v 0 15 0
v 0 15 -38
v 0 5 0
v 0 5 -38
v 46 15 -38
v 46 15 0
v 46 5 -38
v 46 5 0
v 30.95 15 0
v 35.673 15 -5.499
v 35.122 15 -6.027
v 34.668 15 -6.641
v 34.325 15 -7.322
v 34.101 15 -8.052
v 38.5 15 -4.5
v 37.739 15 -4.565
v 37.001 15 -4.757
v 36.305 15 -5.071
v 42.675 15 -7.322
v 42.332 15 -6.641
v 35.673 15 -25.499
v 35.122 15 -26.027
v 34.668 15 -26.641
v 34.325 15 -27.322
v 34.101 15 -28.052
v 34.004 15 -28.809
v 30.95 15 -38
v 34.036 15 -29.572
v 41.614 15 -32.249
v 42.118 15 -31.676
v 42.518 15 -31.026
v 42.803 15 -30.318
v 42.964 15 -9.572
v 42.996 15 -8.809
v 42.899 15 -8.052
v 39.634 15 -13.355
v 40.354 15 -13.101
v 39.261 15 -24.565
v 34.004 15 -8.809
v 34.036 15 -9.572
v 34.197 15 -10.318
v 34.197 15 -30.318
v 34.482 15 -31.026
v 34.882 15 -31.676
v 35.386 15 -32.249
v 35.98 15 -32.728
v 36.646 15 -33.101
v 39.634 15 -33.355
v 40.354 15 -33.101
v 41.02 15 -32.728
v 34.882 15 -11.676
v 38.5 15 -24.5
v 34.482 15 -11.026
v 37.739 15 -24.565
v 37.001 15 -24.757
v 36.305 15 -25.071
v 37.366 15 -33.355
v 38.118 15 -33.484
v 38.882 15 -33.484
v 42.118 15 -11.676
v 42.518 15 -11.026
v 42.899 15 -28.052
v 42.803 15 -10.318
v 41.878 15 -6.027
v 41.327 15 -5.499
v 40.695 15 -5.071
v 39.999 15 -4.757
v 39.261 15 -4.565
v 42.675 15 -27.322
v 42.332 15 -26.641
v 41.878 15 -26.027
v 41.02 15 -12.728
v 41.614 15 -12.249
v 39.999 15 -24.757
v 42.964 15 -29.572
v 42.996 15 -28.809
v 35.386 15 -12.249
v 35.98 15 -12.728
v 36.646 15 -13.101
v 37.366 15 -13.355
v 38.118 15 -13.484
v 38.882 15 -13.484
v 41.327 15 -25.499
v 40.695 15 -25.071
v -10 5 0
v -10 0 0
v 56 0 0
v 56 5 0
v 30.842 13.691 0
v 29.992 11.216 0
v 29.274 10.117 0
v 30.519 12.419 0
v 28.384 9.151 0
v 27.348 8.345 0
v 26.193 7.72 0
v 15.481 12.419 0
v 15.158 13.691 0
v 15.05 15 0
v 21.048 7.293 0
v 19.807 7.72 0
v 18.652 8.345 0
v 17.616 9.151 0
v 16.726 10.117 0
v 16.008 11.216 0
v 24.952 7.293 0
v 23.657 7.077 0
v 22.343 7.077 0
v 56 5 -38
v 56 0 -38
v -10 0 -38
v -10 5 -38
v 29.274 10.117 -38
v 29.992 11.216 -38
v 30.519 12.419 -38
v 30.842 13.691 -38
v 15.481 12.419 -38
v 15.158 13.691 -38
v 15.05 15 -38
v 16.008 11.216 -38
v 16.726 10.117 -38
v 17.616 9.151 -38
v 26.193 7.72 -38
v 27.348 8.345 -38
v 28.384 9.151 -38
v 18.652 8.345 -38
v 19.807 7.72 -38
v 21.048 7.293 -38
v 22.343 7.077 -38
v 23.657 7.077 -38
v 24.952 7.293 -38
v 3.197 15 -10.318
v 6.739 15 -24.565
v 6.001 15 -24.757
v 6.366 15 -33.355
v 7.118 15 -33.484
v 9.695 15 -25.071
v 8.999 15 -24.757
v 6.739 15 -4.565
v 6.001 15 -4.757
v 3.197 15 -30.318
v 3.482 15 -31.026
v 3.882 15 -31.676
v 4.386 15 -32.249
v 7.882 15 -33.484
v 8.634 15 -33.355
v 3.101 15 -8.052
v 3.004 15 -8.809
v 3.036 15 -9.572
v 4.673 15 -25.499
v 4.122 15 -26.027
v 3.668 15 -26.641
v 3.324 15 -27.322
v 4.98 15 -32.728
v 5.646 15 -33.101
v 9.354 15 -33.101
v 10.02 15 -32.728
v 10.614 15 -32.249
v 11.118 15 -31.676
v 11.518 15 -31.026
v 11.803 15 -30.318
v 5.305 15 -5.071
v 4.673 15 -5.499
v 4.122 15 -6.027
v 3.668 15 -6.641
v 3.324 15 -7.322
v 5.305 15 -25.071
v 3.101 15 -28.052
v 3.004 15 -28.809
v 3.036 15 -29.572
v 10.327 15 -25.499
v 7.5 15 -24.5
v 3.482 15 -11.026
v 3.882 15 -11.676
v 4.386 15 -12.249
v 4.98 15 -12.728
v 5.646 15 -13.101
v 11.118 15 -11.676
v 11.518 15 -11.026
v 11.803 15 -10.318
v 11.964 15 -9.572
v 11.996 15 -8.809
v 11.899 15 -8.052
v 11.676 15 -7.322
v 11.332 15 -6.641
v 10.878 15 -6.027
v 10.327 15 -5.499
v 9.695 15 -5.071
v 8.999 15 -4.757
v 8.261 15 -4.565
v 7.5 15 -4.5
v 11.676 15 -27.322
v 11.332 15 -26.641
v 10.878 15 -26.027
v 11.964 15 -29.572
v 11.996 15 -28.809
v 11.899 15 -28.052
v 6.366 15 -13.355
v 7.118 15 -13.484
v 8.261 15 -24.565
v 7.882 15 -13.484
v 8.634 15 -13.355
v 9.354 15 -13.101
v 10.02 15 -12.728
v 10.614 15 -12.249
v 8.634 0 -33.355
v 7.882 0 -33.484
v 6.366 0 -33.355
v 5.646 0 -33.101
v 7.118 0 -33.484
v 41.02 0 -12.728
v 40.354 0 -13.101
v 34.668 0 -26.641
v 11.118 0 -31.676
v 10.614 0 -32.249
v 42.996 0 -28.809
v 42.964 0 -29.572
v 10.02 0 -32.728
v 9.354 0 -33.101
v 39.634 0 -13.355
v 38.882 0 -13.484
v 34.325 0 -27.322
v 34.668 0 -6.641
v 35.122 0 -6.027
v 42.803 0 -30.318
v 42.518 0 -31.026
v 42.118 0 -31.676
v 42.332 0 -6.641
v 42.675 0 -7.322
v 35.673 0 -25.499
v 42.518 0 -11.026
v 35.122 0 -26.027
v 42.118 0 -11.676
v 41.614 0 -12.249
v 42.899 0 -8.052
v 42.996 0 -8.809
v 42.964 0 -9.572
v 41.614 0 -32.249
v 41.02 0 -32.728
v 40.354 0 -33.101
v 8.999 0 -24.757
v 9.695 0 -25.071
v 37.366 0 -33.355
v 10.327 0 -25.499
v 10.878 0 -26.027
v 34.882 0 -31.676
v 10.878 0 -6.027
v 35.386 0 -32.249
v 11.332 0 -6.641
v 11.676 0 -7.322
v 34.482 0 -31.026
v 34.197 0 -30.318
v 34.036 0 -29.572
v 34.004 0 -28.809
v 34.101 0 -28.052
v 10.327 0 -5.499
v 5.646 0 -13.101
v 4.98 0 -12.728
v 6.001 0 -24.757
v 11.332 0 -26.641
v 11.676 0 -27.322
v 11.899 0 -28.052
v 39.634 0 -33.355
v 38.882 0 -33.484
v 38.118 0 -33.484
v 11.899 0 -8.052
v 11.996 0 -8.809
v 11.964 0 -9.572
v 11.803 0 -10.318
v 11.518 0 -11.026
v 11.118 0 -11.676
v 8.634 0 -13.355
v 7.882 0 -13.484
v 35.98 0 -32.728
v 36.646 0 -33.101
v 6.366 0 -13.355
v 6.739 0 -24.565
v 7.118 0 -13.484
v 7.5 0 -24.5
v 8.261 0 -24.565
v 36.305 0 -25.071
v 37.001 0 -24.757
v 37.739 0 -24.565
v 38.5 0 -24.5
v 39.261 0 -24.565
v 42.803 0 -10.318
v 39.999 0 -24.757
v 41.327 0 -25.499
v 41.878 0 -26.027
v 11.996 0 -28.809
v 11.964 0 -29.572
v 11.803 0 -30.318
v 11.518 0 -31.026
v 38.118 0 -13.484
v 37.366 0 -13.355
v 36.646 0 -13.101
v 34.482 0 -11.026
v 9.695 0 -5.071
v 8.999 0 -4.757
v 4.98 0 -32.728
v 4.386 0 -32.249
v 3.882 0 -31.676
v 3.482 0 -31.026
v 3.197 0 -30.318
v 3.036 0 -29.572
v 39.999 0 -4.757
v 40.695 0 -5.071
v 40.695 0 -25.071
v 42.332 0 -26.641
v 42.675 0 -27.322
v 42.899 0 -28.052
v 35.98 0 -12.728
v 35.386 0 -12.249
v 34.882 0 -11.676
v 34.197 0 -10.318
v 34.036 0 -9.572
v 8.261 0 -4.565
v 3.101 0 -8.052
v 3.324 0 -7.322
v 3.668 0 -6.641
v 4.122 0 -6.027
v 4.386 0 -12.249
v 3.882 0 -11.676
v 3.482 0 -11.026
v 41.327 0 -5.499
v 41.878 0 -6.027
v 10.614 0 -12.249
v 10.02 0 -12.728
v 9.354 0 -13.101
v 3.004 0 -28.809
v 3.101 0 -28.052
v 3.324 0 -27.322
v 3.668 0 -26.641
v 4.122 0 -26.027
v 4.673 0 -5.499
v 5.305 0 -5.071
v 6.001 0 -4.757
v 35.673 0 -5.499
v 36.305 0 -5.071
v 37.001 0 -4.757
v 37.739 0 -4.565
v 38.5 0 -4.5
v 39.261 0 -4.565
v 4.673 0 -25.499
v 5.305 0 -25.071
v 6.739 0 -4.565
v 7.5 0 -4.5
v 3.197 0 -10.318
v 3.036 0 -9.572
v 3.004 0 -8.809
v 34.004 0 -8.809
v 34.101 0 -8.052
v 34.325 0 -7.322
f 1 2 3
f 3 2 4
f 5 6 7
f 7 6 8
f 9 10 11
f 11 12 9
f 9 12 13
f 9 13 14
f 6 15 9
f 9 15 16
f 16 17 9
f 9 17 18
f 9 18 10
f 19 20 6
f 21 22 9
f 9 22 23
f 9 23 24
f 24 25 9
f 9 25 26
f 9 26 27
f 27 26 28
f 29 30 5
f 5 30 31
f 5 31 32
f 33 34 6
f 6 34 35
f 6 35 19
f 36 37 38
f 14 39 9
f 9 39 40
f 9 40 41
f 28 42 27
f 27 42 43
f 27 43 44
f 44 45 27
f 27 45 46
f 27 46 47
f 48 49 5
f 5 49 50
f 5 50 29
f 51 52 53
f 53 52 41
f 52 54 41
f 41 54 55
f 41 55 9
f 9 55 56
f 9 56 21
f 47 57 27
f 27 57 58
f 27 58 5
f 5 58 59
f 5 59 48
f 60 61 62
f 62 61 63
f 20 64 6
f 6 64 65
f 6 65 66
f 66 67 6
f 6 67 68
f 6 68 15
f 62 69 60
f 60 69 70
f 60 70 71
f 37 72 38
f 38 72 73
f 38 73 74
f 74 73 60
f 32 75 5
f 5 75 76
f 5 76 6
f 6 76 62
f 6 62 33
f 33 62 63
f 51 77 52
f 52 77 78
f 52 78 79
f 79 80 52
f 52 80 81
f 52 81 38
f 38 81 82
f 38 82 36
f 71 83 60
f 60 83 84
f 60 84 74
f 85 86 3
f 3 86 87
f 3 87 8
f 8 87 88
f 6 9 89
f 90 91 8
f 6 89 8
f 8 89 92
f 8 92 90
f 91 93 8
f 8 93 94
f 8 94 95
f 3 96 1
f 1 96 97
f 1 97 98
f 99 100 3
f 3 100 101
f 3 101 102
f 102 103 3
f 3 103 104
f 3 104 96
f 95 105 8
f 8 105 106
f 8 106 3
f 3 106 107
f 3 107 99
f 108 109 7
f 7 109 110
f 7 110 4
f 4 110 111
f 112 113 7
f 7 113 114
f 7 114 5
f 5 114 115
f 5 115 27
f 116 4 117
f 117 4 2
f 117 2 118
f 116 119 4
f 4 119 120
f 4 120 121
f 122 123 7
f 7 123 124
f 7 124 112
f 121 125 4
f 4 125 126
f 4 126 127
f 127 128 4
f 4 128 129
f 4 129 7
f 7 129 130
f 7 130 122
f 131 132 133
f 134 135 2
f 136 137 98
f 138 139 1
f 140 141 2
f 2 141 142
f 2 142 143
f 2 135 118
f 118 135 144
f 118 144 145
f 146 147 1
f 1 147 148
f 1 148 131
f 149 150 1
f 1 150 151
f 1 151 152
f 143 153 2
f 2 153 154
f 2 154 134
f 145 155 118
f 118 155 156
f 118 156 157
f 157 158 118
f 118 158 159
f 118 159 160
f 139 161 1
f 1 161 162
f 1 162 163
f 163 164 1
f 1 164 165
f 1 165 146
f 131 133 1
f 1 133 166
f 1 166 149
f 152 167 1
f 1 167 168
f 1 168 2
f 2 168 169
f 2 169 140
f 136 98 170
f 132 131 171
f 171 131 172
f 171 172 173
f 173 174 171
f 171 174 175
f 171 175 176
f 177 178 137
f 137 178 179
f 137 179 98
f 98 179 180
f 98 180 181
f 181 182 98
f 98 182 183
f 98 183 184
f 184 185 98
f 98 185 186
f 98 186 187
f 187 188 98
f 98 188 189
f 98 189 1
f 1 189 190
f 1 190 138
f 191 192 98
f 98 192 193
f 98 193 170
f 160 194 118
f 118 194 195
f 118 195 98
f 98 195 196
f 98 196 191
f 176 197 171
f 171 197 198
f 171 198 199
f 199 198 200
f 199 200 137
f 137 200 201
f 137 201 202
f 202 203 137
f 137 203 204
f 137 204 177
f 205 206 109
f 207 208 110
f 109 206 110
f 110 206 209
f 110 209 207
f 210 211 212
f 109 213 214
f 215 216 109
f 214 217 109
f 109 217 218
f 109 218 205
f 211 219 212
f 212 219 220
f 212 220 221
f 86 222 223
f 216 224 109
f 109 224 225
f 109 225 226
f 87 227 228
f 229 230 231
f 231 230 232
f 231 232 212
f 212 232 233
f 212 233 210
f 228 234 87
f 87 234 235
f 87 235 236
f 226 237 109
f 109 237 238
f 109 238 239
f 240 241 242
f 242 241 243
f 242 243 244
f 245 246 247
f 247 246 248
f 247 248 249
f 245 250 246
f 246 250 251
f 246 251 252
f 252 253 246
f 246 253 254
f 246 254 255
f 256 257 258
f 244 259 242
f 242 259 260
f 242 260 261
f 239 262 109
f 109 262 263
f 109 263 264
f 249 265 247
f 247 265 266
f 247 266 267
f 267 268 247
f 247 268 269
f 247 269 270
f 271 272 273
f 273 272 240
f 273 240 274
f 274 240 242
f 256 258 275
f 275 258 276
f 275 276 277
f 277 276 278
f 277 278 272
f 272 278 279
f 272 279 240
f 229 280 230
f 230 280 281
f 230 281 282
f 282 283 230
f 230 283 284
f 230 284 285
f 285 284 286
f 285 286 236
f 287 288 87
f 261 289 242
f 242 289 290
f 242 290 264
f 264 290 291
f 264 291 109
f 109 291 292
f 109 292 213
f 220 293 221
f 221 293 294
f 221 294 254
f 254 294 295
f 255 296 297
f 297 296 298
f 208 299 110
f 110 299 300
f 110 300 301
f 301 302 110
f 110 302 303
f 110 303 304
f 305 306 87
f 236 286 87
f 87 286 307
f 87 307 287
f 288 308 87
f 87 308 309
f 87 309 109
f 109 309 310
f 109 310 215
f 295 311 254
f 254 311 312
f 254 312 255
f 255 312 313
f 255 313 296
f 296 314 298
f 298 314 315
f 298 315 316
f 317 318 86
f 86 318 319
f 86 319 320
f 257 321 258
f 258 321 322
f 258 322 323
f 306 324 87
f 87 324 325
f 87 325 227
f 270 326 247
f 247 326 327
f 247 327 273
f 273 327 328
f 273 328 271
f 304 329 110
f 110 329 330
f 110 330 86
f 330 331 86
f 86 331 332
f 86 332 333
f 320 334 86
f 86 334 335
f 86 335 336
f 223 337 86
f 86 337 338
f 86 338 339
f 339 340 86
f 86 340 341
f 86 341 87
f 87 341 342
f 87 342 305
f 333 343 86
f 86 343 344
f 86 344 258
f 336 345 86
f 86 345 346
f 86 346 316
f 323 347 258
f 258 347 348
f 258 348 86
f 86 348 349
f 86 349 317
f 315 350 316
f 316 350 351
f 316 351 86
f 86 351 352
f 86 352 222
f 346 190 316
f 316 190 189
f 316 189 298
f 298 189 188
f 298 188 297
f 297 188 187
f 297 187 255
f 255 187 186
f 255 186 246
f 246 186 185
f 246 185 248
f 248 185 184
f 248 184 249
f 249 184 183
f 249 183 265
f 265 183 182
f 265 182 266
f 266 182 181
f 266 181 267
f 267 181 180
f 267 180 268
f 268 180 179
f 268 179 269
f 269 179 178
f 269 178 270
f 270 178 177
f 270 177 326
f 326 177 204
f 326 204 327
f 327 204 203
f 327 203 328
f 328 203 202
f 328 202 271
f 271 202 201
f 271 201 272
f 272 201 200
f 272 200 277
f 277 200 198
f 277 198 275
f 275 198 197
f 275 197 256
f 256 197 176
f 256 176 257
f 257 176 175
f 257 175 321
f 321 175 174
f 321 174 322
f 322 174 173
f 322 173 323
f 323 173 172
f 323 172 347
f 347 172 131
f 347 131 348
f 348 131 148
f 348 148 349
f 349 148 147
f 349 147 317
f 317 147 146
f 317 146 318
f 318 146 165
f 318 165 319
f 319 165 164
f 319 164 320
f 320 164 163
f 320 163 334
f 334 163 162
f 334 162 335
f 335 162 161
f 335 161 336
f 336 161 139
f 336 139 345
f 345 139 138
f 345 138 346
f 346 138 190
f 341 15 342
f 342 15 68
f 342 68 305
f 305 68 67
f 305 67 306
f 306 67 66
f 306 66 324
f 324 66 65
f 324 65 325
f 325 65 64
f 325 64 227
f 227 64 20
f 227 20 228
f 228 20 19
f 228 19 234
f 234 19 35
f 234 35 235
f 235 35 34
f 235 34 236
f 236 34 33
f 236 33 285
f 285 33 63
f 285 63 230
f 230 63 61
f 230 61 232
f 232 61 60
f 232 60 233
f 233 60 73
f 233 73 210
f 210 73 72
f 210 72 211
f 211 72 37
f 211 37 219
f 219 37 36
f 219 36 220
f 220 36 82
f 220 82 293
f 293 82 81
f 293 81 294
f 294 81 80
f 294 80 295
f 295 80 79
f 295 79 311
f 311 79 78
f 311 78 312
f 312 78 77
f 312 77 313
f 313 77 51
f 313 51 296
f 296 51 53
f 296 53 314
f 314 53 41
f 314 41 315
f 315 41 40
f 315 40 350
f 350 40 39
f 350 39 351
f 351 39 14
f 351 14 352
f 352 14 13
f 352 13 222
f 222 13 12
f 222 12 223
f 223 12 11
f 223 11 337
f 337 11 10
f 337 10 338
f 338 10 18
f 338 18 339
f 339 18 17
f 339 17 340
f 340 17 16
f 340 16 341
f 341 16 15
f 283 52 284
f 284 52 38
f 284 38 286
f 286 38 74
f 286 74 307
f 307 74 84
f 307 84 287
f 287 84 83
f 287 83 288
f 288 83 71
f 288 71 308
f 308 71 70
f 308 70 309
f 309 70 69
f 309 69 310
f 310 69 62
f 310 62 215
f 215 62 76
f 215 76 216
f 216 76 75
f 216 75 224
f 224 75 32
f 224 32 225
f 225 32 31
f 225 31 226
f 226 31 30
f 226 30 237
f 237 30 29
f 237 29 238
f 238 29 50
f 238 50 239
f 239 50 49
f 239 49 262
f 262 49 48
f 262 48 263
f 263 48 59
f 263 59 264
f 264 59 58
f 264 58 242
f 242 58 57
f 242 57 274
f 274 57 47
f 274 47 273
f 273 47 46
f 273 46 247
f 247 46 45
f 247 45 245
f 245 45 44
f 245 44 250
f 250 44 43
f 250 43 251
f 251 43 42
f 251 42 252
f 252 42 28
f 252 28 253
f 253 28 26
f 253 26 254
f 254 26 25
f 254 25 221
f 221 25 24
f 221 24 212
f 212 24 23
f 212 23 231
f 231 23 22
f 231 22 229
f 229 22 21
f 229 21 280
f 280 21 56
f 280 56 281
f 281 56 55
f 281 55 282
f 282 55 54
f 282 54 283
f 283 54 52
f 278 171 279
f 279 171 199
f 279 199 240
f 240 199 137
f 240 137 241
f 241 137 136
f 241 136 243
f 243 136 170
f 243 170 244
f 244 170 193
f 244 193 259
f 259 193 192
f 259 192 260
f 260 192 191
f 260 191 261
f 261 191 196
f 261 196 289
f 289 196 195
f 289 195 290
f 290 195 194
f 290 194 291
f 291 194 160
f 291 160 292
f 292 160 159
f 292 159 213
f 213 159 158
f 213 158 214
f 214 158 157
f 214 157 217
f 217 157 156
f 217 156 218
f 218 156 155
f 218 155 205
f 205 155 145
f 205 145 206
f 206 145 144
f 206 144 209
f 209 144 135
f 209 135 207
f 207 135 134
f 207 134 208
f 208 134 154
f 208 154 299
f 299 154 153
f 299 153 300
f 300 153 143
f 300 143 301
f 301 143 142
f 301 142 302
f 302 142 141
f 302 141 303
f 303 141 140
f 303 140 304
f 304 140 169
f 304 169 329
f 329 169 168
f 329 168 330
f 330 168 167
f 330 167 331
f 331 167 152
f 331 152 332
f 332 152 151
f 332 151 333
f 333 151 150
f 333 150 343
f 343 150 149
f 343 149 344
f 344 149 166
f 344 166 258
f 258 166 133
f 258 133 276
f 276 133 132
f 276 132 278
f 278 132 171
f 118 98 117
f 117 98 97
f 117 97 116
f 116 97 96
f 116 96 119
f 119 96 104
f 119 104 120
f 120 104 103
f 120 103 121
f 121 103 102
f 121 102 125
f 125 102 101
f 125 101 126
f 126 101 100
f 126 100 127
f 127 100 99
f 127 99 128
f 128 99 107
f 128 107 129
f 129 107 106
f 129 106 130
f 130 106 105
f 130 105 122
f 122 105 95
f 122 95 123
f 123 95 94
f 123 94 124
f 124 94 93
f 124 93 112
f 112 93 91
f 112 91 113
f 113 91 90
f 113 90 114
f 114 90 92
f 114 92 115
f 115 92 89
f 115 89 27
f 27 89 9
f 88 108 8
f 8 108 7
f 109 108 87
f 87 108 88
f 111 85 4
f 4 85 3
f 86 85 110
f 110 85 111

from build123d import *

# Parameters (mm, degrees)
SKETCH1_W              = 46
SKETCH1_H              = 38
BOSS_EXTRUDE1_DEPTH    = 15
M10X1_0_TAPPED_HOLE1_D = 9
SKETCH7_R              = 7.95
CUT_EXTRUDE1_DEPTH     = 62.522353661
SKETCH17_W             = 38
SKETCH17_H             = 5
BOSS_EXTRUDE2_DEPTH    = 10
SKETCH18_W             = 38
SKETCH18_H             = 5
BOSS_EXTRUDE3_DEPTH    = 10


with BuildPart() as part:
    # Sketch1 → Boss-Extrude1 (new body)
    with BuildSketch(Plane(origin=(0, 0, 0), x_dir=(1, 0, 0), z_dir=(0, 1, 0))):
        with Locations((23, 19)):
            Rectangle(SKETCH1_W, SKETCH1_H)
    extrude(amount=BOSS_EXTRUDE1_DEPTH)

    # M10x1.0 Tapped Hole1 (through all)
    with Locations(Plane(origin=(0, 15, 0), x_dir=(1, 0, 0), z_dir=(0, 1, 0))):
        with Locations((7.5, 29), (38.5, 29), (38.5, 9), (7.5, 9)):
            Hole(M10X1_0_TAPPED_HOLE1_D / 2)

    # Sketch7 → Cut-Extrude1 (cut, through all)
    with BuildSketch(Plane.XY):
        with Locations((23, 15)):
            Circle(SKETCH7_R)
    extrude(amount=-CUT_EXTRUDE1_DEPTH, mode=Mode.SUBTRACT)

    # Sketch17 → Boss-Extrude2 (add)
    with BuildSketch(Plane(origin=(46, 0, 0), x_dir=(0, 0, -1), z_dir=(1, 0, 0))):
        with Locations((19, 2.5)):
            Rectangle(SKETCH17_W, SKETCH17_H)
    extrude(amount=BOSS_EXTRUDE2_DEPTH)

    # Sketch18 → Boss-Extrude3 (add)
    with BuildSketch(Plane.ZY):
        with Locations((-19, 2.5)):
            Rectangle(SKETCH18_W, SKETCH18_H)
    extrude(amount=BOSS_EXTRUDE3_DEPTH)


solid = part.part
